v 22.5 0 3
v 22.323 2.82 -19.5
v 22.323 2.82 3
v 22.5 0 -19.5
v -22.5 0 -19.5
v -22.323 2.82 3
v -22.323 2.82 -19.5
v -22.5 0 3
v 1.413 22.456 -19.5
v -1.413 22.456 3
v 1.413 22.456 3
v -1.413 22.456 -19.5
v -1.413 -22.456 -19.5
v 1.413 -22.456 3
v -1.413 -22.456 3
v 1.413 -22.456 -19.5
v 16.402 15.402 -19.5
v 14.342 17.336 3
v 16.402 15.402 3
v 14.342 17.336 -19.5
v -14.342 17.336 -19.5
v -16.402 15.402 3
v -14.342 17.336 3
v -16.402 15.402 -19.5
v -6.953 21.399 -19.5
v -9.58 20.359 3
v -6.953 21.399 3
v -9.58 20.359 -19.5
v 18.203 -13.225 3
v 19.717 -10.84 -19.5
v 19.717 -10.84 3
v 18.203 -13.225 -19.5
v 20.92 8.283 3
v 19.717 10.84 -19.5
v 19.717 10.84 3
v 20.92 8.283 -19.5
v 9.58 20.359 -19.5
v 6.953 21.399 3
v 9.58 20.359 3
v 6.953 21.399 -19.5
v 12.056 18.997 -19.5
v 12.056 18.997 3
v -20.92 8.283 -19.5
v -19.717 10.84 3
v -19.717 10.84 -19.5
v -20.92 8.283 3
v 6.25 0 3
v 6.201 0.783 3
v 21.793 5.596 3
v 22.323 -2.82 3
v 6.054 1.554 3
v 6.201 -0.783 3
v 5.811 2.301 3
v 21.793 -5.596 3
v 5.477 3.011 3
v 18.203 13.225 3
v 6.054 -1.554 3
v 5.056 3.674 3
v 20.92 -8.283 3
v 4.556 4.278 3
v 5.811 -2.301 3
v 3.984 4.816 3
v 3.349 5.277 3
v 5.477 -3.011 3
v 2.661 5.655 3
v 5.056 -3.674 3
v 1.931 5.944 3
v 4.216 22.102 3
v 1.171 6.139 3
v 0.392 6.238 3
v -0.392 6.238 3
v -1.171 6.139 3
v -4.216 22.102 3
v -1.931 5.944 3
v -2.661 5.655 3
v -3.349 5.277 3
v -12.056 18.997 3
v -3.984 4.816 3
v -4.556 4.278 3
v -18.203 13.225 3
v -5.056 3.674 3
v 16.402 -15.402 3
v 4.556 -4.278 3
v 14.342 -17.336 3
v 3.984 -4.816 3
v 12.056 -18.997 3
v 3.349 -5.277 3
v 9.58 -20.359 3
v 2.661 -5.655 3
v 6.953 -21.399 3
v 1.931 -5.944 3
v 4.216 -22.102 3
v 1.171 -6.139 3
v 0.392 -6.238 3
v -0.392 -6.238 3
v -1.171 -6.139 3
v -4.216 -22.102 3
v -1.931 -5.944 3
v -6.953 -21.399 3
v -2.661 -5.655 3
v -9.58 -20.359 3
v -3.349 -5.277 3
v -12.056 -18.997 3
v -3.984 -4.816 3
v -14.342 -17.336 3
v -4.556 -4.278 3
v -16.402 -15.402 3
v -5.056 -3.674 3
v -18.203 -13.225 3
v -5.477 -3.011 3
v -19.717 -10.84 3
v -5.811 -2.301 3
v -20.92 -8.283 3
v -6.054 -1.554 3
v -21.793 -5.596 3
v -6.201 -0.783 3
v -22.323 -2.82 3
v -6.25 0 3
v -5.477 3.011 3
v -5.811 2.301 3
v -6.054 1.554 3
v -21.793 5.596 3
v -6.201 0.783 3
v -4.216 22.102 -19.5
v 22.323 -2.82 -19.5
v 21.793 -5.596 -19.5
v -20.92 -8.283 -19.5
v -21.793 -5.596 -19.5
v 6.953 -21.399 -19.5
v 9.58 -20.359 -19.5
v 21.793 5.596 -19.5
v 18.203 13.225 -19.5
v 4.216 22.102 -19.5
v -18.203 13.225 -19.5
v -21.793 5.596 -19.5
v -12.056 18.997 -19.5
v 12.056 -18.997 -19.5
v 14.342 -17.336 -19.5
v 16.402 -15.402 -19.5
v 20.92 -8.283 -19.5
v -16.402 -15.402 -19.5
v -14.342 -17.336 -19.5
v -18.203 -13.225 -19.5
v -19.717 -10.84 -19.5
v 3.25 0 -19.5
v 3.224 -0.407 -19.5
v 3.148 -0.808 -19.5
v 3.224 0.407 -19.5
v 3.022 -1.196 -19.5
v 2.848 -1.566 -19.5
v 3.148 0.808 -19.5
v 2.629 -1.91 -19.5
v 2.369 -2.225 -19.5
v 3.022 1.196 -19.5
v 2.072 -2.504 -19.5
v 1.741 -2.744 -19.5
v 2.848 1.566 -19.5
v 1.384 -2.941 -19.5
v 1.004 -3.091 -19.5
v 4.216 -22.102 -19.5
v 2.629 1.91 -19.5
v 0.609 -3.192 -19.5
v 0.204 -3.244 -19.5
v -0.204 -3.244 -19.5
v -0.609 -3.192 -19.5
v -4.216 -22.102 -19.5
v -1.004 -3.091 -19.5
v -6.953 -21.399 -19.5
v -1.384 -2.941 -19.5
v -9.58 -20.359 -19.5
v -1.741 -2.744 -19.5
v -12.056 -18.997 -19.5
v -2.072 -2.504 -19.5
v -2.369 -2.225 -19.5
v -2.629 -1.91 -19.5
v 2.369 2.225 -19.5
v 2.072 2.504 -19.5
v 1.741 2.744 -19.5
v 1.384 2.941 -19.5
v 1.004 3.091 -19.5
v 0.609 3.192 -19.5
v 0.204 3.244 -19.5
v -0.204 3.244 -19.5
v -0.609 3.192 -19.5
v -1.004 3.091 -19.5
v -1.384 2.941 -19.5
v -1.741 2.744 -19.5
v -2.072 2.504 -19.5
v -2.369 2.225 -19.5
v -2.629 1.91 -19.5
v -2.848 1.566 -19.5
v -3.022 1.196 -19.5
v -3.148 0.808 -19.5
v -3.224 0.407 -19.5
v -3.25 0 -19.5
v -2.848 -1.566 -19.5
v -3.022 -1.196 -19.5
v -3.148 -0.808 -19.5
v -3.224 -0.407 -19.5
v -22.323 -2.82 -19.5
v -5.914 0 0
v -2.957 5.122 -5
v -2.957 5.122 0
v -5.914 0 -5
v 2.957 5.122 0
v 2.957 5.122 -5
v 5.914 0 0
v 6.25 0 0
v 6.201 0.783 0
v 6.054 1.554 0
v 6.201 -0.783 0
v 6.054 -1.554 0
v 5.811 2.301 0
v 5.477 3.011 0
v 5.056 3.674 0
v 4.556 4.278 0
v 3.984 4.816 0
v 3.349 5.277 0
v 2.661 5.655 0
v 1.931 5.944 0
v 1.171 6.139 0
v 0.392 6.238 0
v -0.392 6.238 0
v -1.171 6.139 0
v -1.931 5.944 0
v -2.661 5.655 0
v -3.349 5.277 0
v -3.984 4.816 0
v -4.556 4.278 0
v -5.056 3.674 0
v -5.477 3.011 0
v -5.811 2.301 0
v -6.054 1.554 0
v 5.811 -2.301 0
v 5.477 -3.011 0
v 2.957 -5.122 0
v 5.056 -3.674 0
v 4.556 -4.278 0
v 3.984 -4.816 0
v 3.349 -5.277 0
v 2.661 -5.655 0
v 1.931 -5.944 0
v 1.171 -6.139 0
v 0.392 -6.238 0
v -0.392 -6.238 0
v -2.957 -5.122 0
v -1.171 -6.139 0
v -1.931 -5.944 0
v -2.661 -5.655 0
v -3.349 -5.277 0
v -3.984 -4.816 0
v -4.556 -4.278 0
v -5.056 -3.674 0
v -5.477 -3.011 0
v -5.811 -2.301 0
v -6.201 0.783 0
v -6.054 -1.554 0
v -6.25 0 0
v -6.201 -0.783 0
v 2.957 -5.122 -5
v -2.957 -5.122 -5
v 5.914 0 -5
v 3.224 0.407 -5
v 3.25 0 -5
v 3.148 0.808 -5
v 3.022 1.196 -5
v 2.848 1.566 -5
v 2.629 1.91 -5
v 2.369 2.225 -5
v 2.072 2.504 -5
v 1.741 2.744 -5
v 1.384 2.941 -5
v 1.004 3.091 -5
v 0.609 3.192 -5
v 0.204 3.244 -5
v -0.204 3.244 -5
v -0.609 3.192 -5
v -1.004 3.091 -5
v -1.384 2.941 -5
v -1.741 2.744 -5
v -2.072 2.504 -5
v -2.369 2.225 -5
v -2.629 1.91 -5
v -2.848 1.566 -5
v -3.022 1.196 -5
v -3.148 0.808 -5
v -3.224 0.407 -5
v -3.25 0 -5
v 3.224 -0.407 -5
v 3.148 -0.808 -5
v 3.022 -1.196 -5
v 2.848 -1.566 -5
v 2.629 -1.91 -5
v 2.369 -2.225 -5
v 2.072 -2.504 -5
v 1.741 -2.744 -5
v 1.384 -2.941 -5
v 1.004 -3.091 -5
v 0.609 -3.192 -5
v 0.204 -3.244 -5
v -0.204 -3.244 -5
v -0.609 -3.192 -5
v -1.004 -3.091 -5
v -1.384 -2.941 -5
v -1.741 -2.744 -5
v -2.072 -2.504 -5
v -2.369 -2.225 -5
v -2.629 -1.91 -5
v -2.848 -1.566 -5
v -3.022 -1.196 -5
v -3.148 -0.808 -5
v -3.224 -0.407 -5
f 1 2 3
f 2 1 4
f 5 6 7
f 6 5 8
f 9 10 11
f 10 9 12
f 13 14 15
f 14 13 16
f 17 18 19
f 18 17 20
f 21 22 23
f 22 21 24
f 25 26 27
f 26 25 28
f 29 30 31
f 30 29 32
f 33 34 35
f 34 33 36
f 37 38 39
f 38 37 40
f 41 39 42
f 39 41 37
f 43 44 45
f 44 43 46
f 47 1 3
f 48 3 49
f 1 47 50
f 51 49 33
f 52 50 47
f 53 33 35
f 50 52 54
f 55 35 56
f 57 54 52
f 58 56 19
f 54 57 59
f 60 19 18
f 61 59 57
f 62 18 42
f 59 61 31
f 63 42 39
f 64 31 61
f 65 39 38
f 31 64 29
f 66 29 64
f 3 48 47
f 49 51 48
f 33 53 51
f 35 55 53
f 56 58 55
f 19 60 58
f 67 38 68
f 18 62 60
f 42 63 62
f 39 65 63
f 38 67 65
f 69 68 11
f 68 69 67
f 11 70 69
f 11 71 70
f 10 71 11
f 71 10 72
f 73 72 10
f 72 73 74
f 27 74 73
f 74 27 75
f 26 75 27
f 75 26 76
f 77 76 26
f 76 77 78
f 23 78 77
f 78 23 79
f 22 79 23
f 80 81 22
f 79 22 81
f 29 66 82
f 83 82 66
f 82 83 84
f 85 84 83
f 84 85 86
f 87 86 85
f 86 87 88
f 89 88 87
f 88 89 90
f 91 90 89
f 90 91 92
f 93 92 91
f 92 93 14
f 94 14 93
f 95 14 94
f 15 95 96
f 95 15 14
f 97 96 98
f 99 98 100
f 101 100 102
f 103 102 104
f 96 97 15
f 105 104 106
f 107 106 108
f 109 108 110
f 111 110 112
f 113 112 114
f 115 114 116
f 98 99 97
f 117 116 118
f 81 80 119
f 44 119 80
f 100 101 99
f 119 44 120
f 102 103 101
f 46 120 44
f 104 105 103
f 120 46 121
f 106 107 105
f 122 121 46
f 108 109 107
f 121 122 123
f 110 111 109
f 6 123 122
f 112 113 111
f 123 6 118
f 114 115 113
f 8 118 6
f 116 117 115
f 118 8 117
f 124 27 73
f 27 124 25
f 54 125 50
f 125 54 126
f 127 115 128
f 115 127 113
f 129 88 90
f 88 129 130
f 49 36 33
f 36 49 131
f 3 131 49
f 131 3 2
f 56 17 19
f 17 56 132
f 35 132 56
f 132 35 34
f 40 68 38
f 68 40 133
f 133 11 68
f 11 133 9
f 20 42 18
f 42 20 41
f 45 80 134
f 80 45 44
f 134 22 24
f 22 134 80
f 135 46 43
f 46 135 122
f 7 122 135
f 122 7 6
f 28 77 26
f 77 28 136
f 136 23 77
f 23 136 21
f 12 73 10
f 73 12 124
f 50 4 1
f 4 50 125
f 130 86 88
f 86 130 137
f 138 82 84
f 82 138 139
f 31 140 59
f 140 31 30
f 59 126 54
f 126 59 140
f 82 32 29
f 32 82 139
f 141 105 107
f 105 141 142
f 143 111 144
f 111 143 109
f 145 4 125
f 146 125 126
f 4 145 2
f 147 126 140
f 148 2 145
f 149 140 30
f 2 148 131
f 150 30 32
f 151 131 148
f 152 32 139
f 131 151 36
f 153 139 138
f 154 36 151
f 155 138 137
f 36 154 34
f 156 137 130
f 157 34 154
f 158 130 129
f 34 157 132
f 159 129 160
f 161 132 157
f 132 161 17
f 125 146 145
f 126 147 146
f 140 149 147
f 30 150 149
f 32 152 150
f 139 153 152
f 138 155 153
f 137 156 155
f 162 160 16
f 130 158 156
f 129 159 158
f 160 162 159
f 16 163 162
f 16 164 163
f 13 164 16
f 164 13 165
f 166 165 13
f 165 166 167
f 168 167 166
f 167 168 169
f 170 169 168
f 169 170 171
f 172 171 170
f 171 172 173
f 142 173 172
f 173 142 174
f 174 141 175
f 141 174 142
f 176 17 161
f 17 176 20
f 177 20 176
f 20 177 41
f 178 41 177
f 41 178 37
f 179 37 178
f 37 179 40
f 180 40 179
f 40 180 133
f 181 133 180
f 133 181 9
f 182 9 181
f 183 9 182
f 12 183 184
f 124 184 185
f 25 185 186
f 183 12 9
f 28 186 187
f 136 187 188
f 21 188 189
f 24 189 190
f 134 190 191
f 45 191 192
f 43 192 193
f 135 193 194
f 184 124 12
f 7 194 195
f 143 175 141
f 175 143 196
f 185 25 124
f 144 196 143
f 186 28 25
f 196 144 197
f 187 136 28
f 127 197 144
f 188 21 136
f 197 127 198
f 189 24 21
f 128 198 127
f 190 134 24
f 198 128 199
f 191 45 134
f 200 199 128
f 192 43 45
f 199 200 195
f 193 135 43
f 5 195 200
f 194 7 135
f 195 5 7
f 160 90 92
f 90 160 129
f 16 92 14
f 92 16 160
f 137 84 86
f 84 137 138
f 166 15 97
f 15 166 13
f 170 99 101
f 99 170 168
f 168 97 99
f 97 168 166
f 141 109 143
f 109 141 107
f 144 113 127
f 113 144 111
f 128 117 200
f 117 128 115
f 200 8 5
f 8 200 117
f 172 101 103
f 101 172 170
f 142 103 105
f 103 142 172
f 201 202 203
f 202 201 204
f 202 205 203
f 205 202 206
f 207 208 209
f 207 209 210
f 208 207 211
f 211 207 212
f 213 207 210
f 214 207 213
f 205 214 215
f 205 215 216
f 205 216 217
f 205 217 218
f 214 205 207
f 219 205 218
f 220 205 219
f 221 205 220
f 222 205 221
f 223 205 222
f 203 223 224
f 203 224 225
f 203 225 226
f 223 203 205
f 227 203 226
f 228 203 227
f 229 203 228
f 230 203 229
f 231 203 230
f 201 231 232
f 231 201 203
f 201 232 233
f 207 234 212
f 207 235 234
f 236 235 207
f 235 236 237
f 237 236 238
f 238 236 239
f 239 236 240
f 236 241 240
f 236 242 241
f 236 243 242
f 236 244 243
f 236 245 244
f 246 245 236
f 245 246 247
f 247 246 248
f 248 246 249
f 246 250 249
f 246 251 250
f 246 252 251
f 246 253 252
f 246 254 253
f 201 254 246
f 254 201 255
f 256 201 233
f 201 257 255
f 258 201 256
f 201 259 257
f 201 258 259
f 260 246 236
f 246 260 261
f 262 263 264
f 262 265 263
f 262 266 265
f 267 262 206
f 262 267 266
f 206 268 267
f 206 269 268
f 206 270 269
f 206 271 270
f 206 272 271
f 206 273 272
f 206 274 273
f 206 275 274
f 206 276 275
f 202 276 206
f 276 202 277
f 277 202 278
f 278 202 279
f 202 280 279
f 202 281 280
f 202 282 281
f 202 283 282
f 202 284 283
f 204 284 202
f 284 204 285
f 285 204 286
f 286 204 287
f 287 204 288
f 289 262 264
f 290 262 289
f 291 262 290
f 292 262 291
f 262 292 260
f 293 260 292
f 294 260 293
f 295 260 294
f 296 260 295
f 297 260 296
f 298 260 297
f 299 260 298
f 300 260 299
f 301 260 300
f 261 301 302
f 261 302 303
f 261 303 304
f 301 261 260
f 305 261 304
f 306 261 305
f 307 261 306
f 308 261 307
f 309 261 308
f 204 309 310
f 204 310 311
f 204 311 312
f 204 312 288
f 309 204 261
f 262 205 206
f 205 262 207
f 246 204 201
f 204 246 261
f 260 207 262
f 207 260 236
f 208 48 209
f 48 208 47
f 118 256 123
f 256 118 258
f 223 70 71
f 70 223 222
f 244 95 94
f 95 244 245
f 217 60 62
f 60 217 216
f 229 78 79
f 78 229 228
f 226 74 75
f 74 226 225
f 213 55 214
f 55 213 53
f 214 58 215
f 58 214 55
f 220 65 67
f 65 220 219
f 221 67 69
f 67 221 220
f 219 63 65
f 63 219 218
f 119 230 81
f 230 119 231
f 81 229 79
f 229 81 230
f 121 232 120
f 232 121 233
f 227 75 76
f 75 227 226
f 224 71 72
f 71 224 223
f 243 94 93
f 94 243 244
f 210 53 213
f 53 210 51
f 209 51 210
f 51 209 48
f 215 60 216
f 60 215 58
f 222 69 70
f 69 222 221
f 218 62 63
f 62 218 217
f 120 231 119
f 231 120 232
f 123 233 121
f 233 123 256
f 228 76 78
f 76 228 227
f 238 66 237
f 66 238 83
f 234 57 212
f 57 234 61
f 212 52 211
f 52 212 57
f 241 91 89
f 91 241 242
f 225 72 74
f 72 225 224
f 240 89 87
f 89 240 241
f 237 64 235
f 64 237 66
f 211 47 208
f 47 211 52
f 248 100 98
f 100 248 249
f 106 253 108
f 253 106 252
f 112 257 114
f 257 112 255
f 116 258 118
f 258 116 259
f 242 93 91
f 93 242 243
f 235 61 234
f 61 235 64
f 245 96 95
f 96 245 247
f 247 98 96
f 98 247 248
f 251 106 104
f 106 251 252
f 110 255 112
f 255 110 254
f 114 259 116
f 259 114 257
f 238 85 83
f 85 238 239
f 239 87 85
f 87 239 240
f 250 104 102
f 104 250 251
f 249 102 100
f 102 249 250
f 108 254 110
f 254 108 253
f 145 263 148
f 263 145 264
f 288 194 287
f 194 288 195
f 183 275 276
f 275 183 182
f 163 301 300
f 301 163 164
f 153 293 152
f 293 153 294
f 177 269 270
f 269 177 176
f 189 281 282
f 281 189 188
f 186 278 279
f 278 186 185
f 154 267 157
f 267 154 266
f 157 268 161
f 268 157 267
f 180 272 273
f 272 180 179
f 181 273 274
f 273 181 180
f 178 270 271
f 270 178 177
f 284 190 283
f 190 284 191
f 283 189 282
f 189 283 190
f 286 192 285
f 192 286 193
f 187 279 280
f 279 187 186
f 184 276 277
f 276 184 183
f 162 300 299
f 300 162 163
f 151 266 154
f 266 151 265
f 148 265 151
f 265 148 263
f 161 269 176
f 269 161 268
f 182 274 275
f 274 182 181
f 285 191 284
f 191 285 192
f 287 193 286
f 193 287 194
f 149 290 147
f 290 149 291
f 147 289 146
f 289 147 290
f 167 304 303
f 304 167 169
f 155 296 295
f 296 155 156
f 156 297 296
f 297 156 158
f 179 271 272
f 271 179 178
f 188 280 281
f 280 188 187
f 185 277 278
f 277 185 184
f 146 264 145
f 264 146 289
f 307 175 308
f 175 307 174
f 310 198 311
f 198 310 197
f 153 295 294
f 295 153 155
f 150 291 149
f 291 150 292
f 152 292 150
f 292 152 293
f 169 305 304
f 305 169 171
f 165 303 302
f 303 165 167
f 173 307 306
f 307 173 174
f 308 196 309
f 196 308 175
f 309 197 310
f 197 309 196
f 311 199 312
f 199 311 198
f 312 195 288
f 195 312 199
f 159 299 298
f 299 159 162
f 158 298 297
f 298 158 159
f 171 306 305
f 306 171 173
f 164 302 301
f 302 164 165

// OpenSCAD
$fn = 50;


difference() {
	union() {
		translate(v = [0, 0, -19.5000000000]) {
			cylinder(h = 22.5000000000, r = 22.5000000000);
		}
		#translate(v = [0, 0, -21.0000000000]) {
			cylinder(h = 21, r = 2.8750000000);
		}
	}
	union() {
		translate(v = [0, 0, 0]) {
			rotate(a = [0, 0, 0]) {
				difference() {
					union() {
						translate(v = [0, 0, -5]) {
							linear_extrude(height = 5) {
								polygon(points = [[5.9142500000, 0.0000000000], [2.9571250000, 5.1218907443], [-2.9571250000, 5.1218907443], [-5.9142500000, 0.0000000000], [-2.9571250000, -5.1218907443], [2.9571250000, -5.1218907443]]);
							}
						}
					}
					union();
				}
			}
		}
		#cylinder(h = 3, r = 6.2500000000);
		#translate(v = [0, 0, -100.0000000000]) {
			cylinder(h = 200, r = 3.2500000000);
		}
	}
}
